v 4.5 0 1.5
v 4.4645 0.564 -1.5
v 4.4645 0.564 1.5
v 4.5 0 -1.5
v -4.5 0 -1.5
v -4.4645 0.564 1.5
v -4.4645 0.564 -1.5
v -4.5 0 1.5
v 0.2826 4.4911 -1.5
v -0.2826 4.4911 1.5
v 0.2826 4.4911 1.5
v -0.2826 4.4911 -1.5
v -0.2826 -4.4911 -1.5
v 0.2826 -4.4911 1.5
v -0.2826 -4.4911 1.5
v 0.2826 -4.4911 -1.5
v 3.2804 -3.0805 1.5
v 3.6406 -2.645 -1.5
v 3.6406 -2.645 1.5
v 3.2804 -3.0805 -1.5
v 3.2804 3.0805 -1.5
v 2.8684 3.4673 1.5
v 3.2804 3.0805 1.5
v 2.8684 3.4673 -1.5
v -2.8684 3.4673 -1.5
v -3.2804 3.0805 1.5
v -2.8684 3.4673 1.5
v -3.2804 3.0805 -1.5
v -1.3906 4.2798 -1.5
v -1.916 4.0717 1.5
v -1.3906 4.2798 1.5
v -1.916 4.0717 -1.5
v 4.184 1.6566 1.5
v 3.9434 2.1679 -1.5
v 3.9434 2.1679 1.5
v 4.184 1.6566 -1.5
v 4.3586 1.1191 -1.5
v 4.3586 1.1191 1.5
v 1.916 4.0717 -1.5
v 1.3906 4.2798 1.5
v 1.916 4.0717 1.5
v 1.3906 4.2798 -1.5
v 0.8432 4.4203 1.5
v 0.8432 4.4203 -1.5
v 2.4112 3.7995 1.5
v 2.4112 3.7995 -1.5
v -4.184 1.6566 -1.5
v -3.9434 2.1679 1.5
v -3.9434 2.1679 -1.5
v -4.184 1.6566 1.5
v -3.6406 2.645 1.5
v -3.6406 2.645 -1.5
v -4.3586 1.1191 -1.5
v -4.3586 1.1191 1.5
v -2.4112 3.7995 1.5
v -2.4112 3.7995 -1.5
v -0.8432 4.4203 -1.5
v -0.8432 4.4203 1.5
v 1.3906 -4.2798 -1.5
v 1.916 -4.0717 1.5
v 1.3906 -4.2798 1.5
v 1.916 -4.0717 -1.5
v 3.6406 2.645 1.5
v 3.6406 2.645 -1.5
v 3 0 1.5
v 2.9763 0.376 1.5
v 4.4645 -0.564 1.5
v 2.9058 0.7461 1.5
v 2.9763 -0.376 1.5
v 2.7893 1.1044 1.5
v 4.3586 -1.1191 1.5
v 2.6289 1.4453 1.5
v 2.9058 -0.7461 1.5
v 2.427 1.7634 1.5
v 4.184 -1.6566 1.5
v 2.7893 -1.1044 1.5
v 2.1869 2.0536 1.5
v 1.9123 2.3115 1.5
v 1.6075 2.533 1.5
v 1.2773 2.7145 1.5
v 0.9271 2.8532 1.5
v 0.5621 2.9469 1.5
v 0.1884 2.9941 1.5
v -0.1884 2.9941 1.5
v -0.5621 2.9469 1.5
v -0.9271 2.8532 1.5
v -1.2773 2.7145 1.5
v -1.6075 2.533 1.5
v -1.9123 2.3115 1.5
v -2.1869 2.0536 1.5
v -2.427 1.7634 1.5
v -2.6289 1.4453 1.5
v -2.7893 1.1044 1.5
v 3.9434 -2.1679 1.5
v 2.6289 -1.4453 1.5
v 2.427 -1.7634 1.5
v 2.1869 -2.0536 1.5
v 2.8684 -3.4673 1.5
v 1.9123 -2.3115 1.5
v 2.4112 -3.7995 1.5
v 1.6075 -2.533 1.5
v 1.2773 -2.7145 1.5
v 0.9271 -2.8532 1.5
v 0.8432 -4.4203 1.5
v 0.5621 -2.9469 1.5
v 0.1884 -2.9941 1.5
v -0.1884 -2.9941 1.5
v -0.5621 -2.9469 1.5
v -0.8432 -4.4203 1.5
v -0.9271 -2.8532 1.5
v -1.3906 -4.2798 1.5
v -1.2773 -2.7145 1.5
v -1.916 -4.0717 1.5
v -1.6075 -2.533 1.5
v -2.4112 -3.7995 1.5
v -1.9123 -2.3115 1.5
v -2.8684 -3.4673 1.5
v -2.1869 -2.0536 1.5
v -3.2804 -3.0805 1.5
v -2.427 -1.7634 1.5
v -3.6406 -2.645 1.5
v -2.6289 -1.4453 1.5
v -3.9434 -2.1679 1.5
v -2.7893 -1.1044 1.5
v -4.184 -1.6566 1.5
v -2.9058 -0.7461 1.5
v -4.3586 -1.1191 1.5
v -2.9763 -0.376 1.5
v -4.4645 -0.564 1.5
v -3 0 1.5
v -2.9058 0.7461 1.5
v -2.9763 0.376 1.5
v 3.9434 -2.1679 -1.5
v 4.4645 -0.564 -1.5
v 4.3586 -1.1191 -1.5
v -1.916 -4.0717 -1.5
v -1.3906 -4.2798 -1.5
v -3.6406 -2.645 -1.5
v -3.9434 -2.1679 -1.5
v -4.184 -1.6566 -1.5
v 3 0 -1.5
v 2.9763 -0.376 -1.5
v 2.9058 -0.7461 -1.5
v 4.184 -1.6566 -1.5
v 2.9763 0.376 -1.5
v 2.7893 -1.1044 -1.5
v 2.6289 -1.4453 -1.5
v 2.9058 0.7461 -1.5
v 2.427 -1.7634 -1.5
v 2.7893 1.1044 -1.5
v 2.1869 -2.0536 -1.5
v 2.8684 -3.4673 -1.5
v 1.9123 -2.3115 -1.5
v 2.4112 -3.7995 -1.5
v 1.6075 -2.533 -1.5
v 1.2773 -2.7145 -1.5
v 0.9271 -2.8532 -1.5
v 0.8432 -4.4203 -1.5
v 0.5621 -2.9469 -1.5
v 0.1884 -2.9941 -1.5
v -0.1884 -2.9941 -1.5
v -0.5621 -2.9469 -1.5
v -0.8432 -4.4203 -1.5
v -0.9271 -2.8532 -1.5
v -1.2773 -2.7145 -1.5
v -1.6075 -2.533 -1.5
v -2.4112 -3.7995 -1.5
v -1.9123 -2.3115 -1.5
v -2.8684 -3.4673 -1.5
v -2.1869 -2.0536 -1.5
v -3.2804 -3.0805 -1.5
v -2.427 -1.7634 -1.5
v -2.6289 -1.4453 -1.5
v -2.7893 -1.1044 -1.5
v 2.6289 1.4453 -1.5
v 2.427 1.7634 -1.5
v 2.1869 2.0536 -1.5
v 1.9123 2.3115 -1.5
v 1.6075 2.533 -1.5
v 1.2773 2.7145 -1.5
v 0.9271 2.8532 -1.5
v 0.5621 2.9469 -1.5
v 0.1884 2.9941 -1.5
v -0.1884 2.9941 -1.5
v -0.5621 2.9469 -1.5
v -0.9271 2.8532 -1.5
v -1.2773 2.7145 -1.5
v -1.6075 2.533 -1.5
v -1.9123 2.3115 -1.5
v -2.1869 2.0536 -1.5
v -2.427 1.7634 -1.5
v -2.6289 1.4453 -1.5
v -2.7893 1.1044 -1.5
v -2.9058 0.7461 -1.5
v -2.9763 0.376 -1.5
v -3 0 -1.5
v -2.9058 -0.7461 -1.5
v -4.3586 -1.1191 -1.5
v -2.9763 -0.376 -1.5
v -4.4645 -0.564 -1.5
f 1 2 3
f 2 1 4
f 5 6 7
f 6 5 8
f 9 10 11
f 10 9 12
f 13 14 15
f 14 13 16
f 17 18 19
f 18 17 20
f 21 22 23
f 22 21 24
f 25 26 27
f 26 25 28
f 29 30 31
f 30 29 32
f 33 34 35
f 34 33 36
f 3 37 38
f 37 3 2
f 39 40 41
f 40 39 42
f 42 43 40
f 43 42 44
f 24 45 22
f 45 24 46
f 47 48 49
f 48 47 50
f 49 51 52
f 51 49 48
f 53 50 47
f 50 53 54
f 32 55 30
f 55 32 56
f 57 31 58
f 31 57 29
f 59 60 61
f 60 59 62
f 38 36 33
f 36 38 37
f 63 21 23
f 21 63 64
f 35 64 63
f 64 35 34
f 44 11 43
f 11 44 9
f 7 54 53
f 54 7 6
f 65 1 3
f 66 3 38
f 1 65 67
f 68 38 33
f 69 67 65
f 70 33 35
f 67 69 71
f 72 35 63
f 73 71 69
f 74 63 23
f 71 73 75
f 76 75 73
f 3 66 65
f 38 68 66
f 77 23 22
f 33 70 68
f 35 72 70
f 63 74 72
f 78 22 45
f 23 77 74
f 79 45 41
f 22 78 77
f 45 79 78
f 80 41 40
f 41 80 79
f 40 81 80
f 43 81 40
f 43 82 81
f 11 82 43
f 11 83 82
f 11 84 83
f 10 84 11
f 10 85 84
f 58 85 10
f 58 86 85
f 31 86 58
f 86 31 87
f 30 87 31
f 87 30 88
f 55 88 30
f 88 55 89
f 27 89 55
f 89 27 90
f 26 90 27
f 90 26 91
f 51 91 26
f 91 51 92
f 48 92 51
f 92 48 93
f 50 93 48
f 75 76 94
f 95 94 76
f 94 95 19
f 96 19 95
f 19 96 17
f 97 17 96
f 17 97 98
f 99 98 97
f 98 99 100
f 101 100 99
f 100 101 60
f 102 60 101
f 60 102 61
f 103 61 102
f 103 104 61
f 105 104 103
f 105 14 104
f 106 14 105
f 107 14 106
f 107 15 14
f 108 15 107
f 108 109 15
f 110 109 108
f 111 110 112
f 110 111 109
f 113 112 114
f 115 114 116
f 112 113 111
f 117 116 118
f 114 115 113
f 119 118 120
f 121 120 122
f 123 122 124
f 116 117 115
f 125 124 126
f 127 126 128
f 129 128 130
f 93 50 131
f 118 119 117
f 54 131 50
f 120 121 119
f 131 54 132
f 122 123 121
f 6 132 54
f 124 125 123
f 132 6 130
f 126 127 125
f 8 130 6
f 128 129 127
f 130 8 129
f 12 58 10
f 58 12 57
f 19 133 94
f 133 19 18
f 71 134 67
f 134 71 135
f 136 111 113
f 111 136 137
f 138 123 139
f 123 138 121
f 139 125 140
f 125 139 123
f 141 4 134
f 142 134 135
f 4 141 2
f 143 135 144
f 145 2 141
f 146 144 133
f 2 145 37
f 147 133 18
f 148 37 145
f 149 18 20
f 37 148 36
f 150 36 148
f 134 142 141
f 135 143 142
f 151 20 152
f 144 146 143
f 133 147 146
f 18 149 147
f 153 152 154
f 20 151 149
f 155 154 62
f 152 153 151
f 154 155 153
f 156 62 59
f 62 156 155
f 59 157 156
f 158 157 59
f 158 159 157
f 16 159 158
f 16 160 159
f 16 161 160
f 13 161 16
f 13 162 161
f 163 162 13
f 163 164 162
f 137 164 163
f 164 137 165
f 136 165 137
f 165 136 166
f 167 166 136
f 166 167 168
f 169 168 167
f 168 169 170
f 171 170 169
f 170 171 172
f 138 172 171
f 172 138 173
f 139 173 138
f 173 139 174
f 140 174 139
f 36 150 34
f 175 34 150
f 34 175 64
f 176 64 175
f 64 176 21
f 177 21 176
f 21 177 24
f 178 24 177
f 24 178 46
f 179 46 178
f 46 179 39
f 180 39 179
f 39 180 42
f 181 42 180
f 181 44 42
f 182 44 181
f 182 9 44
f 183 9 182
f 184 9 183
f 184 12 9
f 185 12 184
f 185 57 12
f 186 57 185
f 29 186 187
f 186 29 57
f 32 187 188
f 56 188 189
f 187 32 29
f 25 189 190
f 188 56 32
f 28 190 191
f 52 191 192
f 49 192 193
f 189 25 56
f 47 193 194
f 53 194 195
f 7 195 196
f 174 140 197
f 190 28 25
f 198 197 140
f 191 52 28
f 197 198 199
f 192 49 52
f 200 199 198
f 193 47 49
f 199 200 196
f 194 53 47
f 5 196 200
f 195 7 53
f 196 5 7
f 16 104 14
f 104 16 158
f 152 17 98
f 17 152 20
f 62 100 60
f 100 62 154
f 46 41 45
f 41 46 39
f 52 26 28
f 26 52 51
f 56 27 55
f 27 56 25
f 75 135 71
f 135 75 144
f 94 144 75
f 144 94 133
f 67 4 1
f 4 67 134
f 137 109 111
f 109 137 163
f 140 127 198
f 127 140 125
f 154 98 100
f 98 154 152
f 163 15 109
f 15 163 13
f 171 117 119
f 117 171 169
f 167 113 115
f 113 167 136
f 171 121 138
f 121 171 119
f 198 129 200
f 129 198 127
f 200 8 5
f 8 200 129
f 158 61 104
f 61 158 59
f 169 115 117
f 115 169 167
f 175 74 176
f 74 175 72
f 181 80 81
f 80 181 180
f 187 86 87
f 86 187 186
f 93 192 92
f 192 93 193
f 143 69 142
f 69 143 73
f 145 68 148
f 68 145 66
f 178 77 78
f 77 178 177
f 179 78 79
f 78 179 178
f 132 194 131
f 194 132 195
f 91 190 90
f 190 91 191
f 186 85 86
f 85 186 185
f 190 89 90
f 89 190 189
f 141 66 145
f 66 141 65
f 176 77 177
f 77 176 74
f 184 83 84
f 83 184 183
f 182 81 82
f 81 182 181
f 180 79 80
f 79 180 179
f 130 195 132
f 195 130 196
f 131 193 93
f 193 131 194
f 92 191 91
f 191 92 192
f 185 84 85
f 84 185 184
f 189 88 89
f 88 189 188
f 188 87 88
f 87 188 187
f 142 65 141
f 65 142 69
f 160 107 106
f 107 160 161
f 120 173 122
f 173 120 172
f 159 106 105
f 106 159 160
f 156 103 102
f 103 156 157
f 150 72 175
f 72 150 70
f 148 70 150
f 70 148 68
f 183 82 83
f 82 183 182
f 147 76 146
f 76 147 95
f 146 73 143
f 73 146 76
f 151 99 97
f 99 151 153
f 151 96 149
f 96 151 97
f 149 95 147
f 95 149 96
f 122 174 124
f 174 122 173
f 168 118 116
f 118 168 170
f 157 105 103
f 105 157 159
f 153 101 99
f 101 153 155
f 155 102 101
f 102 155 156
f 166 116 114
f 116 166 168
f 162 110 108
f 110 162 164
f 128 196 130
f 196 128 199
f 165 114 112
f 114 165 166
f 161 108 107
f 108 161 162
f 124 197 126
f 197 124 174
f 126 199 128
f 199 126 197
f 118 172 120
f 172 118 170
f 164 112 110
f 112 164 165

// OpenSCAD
$fn = 50;


difference() {
	union() {
		translate(v = [0, 0, -1.5000000000]) {
			cylinder(h = 3, r = 4.5000000000);
		}
	}
	union() {
		translate(v = [0, 0, -100.0000000000]) {
			cylinder(h = 200, r = 3);
		}
	}
}
